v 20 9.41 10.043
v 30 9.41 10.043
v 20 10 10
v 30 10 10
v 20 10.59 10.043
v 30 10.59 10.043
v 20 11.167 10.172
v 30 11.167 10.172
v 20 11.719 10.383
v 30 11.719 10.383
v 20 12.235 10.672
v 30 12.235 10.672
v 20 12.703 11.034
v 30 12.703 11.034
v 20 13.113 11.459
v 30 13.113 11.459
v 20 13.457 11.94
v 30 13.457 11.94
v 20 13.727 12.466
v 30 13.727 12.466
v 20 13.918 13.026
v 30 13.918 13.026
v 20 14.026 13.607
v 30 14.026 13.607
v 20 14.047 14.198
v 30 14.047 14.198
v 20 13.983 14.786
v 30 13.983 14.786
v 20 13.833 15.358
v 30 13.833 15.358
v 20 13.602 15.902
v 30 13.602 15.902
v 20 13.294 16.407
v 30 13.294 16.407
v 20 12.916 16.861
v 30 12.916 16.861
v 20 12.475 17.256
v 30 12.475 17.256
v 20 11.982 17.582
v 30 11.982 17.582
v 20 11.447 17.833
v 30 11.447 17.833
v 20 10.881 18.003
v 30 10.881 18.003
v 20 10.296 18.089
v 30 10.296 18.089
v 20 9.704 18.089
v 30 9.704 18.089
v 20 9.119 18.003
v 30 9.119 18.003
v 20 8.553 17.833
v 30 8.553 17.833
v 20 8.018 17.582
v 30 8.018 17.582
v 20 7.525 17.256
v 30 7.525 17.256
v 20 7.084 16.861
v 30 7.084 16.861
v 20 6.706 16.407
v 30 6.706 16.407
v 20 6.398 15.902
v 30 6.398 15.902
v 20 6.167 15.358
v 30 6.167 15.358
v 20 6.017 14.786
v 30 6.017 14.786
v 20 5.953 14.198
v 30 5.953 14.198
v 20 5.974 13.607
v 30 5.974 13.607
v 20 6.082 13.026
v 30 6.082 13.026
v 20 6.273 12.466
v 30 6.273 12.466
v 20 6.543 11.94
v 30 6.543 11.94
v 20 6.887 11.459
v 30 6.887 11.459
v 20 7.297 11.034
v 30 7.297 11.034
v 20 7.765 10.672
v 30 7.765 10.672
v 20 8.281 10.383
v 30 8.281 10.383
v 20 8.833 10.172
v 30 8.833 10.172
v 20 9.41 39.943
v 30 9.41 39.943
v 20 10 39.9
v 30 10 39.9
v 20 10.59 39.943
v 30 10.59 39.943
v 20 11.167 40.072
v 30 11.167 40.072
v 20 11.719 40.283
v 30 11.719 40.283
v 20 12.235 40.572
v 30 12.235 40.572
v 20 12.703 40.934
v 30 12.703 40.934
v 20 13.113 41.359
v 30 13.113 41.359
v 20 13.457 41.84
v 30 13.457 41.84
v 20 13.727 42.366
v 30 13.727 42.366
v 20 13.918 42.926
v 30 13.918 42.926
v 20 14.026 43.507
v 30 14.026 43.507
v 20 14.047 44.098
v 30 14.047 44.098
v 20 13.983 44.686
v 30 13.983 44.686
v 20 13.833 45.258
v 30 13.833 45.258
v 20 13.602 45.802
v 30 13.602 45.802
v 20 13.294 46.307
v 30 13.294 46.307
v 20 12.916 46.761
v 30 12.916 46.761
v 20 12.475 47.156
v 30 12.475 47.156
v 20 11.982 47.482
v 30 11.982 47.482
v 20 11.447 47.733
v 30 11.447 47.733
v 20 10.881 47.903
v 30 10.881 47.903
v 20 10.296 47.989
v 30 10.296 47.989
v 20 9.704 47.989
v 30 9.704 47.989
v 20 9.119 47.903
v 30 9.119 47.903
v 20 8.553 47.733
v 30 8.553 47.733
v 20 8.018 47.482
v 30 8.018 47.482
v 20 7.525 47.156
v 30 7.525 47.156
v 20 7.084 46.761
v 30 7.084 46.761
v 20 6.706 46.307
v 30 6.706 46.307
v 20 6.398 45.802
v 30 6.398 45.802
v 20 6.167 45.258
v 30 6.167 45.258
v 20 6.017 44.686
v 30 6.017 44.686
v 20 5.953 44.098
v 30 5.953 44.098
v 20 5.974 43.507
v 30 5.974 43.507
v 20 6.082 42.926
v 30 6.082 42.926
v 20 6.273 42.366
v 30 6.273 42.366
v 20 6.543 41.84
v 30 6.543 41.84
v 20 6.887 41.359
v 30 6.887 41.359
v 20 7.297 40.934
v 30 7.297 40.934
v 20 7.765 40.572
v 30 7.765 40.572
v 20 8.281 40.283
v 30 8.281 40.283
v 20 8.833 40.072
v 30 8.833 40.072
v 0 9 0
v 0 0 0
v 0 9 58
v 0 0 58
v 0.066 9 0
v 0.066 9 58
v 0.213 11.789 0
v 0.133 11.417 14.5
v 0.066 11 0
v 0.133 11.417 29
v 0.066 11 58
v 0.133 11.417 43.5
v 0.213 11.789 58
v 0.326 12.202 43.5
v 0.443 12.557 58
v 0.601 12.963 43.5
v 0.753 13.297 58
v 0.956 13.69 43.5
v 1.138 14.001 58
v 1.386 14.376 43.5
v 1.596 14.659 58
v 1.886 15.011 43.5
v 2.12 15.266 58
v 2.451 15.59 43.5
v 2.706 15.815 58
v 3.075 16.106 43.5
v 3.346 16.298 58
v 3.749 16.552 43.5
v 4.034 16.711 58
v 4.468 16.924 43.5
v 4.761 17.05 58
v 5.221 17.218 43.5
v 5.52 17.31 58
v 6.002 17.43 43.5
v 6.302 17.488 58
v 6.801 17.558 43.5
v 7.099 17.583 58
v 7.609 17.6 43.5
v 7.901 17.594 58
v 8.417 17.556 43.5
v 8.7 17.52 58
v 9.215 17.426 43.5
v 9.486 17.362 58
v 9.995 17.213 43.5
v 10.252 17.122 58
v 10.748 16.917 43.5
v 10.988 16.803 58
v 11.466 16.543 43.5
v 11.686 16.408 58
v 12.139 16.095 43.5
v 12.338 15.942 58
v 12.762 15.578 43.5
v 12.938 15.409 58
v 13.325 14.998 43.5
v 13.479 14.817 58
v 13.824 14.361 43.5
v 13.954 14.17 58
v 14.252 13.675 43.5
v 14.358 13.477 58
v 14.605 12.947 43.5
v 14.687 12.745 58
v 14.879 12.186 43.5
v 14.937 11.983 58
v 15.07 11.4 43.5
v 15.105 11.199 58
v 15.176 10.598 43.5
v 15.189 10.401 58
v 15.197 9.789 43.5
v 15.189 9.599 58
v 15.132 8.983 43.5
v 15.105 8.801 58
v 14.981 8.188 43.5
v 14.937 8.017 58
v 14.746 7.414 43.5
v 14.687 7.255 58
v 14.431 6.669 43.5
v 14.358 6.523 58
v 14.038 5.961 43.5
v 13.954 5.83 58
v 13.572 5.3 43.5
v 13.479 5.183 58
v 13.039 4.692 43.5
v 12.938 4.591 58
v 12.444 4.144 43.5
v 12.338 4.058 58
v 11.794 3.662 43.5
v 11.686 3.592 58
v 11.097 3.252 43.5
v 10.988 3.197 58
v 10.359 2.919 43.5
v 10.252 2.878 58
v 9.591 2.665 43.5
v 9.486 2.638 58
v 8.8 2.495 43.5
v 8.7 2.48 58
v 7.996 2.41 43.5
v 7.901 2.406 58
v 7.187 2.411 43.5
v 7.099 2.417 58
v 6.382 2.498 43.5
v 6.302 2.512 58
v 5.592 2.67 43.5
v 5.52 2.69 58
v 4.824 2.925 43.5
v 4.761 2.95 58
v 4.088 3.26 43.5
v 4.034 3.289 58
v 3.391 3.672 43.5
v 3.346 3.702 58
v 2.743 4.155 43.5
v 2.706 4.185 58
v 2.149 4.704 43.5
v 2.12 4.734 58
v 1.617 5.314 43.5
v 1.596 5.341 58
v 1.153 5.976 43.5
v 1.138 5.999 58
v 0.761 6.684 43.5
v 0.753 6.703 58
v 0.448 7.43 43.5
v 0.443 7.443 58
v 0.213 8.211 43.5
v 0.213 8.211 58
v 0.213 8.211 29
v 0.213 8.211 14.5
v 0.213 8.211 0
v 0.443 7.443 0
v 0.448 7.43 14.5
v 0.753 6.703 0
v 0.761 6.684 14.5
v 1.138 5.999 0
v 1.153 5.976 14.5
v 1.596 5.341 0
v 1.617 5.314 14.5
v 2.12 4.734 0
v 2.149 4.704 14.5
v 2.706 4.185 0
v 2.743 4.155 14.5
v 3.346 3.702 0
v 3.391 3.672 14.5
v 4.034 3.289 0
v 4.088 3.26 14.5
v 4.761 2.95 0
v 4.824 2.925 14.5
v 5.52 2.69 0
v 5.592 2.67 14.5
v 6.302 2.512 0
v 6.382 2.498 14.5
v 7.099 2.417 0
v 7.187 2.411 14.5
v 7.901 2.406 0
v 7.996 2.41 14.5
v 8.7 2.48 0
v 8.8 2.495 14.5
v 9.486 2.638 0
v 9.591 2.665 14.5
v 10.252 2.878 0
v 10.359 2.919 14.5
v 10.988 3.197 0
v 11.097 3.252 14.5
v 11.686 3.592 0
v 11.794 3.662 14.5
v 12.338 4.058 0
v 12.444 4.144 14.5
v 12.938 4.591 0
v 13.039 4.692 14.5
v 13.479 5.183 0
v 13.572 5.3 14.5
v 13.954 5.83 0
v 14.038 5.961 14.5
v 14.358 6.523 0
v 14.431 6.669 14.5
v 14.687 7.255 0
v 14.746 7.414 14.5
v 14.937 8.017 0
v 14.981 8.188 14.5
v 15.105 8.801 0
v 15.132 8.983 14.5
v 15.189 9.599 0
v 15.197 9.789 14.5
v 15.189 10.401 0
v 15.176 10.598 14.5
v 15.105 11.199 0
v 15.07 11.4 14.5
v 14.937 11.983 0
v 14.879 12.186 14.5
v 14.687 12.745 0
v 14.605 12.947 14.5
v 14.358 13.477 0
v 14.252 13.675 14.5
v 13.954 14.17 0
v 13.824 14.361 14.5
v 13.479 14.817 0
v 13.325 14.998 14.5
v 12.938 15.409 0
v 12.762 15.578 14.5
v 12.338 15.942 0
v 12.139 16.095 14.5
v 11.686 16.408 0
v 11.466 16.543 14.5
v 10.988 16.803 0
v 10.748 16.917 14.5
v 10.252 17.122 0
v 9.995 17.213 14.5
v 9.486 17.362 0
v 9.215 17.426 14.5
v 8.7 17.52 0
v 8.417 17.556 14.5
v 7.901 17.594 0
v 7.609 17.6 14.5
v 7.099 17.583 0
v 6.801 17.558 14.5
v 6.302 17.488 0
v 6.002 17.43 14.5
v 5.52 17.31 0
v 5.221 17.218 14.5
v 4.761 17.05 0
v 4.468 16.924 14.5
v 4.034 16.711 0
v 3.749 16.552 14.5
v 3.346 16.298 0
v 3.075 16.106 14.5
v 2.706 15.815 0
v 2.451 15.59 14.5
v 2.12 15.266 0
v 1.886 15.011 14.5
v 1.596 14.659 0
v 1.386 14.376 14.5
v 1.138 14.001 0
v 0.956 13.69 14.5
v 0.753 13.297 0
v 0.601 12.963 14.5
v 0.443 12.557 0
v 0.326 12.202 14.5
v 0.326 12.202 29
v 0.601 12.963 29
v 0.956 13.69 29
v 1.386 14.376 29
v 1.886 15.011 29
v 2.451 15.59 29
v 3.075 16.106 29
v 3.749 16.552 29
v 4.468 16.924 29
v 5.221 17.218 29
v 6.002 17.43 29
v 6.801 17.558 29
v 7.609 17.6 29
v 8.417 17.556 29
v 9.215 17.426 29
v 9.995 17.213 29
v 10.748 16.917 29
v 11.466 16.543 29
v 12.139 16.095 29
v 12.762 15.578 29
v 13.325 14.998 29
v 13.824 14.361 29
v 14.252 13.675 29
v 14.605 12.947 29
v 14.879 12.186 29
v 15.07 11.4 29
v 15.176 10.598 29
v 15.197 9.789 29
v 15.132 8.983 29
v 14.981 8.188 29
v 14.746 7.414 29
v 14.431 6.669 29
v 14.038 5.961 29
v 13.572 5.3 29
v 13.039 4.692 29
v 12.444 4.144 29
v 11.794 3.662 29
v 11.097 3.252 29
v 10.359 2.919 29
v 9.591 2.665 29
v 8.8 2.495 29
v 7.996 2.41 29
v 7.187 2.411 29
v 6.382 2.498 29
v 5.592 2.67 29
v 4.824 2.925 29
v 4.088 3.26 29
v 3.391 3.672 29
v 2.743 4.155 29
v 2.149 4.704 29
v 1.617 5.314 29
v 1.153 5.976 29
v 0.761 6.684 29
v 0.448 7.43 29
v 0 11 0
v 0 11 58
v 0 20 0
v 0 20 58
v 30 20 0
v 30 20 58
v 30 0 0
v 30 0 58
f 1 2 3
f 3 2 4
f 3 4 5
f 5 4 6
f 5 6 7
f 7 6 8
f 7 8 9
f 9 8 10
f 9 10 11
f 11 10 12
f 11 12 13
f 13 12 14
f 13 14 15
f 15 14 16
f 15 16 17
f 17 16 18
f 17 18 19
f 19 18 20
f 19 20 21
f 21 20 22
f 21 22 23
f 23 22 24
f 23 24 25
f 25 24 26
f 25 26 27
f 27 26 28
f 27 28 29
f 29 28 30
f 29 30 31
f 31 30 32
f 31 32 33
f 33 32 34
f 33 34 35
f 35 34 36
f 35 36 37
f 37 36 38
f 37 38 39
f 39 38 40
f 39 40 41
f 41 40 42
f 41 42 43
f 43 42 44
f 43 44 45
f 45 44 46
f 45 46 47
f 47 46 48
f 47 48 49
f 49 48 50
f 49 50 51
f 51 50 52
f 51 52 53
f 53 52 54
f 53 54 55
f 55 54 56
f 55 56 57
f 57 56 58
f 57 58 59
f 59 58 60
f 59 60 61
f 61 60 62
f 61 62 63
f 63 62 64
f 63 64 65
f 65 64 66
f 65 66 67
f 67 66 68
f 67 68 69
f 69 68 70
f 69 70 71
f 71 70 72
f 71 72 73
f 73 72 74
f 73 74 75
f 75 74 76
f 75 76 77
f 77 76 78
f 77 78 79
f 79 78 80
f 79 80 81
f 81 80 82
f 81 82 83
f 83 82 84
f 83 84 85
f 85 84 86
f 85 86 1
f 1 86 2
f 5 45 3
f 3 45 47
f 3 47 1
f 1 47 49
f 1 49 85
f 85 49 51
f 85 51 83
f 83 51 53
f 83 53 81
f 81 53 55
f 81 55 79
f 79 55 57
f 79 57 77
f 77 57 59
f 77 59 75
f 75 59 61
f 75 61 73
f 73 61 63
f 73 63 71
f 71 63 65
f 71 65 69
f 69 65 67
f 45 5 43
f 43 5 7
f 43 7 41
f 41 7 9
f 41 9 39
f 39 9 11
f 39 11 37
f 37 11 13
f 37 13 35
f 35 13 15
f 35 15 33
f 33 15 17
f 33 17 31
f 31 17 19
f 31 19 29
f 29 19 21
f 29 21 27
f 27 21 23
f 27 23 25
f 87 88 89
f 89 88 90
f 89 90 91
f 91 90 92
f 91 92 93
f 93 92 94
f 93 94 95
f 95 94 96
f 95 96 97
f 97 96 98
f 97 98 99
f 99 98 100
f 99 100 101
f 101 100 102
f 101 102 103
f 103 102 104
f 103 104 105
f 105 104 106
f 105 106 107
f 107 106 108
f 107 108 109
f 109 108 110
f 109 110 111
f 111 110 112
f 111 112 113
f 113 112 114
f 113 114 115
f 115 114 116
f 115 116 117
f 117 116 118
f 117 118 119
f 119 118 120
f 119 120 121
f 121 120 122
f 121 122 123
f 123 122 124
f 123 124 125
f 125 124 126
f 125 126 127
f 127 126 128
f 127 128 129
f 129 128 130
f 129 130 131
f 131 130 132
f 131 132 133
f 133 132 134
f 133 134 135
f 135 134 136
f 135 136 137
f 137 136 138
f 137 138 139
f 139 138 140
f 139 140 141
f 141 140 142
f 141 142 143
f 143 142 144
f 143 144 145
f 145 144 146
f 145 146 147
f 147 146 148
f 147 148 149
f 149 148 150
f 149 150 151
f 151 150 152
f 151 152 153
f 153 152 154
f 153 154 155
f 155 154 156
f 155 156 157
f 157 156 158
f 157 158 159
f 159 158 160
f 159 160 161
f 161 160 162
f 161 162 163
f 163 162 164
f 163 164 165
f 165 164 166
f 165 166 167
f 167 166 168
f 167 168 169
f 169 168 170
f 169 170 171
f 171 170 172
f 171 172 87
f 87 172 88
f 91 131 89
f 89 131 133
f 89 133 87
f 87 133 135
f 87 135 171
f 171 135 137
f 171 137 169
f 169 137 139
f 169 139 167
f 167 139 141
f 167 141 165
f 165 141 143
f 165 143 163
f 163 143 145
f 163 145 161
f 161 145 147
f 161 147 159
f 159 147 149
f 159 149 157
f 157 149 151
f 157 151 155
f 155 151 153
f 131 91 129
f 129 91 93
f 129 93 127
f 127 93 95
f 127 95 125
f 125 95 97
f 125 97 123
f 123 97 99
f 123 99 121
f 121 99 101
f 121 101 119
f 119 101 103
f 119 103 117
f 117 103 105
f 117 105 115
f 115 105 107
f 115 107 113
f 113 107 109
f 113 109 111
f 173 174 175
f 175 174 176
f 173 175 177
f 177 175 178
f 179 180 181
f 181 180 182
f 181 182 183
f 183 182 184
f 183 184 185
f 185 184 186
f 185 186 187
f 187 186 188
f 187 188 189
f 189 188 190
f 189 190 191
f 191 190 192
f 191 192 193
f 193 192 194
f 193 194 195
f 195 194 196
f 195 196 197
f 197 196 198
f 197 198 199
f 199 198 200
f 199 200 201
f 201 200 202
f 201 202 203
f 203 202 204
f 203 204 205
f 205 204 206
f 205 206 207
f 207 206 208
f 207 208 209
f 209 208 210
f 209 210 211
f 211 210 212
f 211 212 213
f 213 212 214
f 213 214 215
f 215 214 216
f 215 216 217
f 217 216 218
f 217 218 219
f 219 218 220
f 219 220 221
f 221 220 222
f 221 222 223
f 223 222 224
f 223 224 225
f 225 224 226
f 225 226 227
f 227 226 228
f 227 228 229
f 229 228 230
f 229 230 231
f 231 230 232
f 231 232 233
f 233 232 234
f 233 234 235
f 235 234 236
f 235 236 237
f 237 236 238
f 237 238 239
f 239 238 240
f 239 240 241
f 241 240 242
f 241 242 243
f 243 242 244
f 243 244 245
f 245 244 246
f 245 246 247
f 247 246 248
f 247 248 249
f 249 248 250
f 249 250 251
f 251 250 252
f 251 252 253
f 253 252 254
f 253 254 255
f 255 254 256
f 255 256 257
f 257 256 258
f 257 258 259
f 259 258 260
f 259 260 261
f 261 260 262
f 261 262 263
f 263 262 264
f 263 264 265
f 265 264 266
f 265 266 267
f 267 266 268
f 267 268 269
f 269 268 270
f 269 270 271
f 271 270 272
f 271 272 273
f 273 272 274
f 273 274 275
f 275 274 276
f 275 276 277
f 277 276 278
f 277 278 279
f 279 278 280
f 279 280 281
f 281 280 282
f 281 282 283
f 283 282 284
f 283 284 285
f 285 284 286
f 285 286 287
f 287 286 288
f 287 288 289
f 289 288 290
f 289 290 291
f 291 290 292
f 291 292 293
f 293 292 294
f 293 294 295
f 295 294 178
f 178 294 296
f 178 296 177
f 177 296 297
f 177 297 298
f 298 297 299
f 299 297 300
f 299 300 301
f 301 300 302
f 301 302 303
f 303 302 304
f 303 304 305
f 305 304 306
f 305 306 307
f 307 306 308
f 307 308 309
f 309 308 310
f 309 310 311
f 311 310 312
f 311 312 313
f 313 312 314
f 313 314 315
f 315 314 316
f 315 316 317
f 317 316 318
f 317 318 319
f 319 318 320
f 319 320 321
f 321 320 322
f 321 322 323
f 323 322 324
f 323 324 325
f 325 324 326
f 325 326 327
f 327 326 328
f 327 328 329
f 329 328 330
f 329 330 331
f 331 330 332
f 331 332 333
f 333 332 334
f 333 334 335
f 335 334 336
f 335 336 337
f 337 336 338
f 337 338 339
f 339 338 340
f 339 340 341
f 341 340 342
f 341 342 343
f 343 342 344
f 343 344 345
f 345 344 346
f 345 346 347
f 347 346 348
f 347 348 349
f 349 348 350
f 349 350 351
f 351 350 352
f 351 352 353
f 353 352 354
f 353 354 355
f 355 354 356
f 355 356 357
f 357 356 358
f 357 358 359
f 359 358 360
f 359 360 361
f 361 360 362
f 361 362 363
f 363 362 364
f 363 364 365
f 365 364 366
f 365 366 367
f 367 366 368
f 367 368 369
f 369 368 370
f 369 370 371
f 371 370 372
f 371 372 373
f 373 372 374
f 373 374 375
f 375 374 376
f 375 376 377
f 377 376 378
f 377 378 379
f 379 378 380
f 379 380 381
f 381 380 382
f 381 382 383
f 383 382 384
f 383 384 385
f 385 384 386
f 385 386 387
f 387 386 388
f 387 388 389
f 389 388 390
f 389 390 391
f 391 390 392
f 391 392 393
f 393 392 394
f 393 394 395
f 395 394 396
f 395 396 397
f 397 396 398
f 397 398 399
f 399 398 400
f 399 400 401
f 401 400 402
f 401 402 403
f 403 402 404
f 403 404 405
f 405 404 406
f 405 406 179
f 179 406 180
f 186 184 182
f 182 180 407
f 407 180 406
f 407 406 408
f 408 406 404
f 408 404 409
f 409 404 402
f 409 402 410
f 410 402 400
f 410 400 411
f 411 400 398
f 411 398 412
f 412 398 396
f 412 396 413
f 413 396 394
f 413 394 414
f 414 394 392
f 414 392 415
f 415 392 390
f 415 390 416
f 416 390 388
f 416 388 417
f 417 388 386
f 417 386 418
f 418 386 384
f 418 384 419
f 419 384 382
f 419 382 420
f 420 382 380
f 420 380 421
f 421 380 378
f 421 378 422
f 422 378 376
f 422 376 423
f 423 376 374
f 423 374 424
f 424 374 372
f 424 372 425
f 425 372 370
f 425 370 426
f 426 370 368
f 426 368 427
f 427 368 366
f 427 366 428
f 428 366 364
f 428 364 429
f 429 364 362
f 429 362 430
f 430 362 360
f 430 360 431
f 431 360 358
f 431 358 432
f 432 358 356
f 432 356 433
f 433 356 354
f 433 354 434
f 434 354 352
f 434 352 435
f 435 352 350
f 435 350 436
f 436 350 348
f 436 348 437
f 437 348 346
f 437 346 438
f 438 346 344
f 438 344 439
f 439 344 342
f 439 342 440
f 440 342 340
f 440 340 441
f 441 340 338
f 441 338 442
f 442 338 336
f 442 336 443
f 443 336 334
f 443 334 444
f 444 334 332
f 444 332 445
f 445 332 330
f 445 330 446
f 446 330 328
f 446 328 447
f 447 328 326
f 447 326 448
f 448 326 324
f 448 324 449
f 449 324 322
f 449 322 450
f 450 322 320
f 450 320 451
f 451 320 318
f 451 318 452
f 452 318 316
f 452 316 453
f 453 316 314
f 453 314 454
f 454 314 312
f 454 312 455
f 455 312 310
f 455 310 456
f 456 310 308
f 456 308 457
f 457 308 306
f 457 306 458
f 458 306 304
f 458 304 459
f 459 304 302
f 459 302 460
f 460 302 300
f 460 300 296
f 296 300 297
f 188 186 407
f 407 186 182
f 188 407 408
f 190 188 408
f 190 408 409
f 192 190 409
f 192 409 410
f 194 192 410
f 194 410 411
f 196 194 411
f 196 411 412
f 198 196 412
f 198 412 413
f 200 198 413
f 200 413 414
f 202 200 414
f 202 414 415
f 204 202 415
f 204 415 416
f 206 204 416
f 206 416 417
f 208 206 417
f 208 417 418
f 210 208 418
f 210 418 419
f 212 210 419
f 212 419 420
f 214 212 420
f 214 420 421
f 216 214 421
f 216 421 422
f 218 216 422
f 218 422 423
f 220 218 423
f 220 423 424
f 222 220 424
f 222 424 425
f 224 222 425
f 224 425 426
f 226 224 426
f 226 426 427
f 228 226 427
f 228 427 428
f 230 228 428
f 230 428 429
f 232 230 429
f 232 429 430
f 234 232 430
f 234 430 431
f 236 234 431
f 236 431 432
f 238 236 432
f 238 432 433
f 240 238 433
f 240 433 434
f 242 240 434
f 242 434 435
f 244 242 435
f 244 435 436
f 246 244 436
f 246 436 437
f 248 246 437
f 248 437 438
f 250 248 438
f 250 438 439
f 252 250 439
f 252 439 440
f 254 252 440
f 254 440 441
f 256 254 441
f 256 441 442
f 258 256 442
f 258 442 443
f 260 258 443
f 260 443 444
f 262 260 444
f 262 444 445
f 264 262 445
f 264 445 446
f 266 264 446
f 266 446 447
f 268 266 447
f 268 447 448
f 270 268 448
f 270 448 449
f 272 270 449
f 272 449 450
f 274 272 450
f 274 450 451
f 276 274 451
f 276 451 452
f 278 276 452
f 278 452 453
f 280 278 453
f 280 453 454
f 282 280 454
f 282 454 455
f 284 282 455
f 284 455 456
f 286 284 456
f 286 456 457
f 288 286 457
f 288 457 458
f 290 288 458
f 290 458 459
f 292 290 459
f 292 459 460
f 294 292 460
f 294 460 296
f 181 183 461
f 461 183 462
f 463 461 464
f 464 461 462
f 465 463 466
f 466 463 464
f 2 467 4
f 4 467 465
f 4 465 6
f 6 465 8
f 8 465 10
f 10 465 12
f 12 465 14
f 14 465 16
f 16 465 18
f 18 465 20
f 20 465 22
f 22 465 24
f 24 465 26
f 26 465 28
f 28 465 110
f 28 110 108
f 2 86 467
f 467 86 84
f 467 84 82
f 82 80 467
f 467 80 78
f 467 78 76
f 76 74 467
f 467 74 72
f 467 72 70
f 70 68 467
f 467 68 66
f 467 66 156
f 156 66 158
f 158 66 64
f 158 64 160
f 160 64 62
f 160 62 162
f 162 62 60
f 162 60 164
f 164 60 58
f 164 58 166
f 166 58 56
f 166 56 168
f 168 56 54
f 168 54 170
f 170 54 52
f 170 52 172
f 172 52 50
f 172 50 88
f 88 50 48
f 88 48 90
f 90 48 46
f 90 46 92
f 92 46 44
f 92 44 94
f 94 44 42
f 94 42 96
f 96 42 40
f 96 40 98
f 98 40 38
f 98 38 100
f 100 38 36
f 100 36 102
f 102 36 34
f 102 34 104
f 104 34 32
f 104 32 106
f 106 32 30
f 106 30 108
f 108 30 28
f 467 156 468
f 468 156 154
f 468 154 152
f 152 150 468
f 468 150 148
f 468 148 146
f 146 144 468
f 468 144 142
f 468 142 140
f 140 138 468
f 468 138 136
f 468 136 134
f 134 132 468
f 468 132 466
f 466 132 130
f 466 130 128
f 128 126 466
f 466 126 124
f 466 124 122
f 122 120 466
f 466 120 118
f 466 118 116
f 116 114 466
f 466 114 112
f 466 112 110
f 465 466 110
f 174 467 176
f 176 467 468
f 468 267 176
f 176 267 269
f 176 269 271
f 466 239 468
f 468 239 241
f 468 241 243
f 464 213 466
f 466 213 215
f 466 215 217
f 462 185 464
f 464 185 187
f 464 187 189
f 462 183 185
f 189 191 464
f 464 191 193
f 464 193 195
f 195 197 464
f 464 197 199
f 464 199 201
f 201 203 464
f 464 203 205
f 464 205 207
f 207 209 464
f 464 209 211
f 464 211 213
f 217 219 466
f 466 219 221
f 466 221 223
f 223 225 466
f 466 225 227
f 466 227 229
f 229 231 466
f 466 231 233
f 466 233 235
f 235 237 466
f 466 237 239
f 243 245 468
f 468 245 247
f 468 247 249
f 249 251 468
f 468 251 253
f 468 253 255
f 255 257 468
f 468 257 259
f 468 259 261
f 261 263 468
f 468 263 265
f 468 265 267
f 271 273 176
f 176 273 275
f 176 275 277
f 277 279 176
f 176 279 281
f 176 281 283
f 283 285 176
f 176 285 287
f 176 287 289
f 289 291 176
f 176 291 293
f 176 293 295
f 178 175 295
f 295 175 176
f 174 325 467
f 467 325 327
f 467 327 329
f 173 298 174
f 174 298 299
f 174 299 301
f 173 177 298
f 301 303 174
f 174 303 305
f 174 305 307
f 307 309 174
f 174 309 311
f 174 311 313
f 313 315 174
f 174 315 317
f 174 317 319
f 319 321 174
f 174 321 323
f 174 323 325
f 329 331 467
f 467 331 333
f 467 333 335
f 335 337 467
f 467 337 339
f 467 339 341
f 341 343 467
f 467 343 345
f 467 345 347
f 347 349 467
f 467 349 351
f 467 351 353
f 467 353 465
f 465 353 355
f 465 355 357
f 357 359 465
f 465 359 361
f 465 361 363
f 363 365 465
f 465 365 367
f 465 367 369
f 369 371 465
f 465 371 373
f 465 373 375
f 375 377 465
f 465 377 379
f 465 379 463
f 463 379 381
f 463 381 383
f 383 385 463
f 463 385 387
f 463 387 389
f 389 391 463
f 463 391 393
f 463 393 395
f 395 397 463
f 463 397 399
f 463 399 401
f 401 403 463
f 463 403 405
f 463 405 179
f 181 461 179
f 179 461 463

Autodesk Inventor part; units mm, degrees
ref_plane "YZ Plane" through (0, 0, 0) normal (1, 0, 0) x (0, 1, 0)
ref_plane "XZ Plane" through (0, 0, 0) normal (0, 1, 0) x (-1, 0, 0)
ref_plane "XY Plane" through (0, 0, 0) normal (0, 0, 1) x (1, 0, 0)
sketch "Эскиз1" plane through (0, 0, 0) normal (0, 0, 1) x (1, 0, 0)
  line L0 (0, 0) -> (30, 0)
  line L1 (30, 0) -> (30, 20)
  line L2 (30, 20) -> (0, 20)
  arc A0 (0.0661, 9) -> (0.0661, 11) centre (7.6, 10) ccw
  line L3 (0.0661, 11) -> (0, 11)
  line L4 (0.0661, 9) -> (0, 9)
  line L5 (0, 20) -> (0, 11)
  line L6 (0, 9) -> (0, 0)
  dimension "d0" = 30
  dimension "d1" = 20
extrude "Выдавливание1" add sketch "Эскиз1" along normal blind 58
sketch "Эскиз2" plane through (30, 0, 0) normal (1, 0, 0) x (0, 0, -1)
  circle A0 centre (-14.05, 10) radius 4.05
  line L0 (0, 20) -> (-58, 20) projected
  line L1 (-29, 20) -> (-29, 0)
  circle A1 centre (-43.95, 10) radius 4.05
  point P0 (0, 0)
  dimension "d4" = 8.1
extrude "Выдавливание2" cut sketch "Эскиз2" against normal blind 10
properties part number "x_holder"
